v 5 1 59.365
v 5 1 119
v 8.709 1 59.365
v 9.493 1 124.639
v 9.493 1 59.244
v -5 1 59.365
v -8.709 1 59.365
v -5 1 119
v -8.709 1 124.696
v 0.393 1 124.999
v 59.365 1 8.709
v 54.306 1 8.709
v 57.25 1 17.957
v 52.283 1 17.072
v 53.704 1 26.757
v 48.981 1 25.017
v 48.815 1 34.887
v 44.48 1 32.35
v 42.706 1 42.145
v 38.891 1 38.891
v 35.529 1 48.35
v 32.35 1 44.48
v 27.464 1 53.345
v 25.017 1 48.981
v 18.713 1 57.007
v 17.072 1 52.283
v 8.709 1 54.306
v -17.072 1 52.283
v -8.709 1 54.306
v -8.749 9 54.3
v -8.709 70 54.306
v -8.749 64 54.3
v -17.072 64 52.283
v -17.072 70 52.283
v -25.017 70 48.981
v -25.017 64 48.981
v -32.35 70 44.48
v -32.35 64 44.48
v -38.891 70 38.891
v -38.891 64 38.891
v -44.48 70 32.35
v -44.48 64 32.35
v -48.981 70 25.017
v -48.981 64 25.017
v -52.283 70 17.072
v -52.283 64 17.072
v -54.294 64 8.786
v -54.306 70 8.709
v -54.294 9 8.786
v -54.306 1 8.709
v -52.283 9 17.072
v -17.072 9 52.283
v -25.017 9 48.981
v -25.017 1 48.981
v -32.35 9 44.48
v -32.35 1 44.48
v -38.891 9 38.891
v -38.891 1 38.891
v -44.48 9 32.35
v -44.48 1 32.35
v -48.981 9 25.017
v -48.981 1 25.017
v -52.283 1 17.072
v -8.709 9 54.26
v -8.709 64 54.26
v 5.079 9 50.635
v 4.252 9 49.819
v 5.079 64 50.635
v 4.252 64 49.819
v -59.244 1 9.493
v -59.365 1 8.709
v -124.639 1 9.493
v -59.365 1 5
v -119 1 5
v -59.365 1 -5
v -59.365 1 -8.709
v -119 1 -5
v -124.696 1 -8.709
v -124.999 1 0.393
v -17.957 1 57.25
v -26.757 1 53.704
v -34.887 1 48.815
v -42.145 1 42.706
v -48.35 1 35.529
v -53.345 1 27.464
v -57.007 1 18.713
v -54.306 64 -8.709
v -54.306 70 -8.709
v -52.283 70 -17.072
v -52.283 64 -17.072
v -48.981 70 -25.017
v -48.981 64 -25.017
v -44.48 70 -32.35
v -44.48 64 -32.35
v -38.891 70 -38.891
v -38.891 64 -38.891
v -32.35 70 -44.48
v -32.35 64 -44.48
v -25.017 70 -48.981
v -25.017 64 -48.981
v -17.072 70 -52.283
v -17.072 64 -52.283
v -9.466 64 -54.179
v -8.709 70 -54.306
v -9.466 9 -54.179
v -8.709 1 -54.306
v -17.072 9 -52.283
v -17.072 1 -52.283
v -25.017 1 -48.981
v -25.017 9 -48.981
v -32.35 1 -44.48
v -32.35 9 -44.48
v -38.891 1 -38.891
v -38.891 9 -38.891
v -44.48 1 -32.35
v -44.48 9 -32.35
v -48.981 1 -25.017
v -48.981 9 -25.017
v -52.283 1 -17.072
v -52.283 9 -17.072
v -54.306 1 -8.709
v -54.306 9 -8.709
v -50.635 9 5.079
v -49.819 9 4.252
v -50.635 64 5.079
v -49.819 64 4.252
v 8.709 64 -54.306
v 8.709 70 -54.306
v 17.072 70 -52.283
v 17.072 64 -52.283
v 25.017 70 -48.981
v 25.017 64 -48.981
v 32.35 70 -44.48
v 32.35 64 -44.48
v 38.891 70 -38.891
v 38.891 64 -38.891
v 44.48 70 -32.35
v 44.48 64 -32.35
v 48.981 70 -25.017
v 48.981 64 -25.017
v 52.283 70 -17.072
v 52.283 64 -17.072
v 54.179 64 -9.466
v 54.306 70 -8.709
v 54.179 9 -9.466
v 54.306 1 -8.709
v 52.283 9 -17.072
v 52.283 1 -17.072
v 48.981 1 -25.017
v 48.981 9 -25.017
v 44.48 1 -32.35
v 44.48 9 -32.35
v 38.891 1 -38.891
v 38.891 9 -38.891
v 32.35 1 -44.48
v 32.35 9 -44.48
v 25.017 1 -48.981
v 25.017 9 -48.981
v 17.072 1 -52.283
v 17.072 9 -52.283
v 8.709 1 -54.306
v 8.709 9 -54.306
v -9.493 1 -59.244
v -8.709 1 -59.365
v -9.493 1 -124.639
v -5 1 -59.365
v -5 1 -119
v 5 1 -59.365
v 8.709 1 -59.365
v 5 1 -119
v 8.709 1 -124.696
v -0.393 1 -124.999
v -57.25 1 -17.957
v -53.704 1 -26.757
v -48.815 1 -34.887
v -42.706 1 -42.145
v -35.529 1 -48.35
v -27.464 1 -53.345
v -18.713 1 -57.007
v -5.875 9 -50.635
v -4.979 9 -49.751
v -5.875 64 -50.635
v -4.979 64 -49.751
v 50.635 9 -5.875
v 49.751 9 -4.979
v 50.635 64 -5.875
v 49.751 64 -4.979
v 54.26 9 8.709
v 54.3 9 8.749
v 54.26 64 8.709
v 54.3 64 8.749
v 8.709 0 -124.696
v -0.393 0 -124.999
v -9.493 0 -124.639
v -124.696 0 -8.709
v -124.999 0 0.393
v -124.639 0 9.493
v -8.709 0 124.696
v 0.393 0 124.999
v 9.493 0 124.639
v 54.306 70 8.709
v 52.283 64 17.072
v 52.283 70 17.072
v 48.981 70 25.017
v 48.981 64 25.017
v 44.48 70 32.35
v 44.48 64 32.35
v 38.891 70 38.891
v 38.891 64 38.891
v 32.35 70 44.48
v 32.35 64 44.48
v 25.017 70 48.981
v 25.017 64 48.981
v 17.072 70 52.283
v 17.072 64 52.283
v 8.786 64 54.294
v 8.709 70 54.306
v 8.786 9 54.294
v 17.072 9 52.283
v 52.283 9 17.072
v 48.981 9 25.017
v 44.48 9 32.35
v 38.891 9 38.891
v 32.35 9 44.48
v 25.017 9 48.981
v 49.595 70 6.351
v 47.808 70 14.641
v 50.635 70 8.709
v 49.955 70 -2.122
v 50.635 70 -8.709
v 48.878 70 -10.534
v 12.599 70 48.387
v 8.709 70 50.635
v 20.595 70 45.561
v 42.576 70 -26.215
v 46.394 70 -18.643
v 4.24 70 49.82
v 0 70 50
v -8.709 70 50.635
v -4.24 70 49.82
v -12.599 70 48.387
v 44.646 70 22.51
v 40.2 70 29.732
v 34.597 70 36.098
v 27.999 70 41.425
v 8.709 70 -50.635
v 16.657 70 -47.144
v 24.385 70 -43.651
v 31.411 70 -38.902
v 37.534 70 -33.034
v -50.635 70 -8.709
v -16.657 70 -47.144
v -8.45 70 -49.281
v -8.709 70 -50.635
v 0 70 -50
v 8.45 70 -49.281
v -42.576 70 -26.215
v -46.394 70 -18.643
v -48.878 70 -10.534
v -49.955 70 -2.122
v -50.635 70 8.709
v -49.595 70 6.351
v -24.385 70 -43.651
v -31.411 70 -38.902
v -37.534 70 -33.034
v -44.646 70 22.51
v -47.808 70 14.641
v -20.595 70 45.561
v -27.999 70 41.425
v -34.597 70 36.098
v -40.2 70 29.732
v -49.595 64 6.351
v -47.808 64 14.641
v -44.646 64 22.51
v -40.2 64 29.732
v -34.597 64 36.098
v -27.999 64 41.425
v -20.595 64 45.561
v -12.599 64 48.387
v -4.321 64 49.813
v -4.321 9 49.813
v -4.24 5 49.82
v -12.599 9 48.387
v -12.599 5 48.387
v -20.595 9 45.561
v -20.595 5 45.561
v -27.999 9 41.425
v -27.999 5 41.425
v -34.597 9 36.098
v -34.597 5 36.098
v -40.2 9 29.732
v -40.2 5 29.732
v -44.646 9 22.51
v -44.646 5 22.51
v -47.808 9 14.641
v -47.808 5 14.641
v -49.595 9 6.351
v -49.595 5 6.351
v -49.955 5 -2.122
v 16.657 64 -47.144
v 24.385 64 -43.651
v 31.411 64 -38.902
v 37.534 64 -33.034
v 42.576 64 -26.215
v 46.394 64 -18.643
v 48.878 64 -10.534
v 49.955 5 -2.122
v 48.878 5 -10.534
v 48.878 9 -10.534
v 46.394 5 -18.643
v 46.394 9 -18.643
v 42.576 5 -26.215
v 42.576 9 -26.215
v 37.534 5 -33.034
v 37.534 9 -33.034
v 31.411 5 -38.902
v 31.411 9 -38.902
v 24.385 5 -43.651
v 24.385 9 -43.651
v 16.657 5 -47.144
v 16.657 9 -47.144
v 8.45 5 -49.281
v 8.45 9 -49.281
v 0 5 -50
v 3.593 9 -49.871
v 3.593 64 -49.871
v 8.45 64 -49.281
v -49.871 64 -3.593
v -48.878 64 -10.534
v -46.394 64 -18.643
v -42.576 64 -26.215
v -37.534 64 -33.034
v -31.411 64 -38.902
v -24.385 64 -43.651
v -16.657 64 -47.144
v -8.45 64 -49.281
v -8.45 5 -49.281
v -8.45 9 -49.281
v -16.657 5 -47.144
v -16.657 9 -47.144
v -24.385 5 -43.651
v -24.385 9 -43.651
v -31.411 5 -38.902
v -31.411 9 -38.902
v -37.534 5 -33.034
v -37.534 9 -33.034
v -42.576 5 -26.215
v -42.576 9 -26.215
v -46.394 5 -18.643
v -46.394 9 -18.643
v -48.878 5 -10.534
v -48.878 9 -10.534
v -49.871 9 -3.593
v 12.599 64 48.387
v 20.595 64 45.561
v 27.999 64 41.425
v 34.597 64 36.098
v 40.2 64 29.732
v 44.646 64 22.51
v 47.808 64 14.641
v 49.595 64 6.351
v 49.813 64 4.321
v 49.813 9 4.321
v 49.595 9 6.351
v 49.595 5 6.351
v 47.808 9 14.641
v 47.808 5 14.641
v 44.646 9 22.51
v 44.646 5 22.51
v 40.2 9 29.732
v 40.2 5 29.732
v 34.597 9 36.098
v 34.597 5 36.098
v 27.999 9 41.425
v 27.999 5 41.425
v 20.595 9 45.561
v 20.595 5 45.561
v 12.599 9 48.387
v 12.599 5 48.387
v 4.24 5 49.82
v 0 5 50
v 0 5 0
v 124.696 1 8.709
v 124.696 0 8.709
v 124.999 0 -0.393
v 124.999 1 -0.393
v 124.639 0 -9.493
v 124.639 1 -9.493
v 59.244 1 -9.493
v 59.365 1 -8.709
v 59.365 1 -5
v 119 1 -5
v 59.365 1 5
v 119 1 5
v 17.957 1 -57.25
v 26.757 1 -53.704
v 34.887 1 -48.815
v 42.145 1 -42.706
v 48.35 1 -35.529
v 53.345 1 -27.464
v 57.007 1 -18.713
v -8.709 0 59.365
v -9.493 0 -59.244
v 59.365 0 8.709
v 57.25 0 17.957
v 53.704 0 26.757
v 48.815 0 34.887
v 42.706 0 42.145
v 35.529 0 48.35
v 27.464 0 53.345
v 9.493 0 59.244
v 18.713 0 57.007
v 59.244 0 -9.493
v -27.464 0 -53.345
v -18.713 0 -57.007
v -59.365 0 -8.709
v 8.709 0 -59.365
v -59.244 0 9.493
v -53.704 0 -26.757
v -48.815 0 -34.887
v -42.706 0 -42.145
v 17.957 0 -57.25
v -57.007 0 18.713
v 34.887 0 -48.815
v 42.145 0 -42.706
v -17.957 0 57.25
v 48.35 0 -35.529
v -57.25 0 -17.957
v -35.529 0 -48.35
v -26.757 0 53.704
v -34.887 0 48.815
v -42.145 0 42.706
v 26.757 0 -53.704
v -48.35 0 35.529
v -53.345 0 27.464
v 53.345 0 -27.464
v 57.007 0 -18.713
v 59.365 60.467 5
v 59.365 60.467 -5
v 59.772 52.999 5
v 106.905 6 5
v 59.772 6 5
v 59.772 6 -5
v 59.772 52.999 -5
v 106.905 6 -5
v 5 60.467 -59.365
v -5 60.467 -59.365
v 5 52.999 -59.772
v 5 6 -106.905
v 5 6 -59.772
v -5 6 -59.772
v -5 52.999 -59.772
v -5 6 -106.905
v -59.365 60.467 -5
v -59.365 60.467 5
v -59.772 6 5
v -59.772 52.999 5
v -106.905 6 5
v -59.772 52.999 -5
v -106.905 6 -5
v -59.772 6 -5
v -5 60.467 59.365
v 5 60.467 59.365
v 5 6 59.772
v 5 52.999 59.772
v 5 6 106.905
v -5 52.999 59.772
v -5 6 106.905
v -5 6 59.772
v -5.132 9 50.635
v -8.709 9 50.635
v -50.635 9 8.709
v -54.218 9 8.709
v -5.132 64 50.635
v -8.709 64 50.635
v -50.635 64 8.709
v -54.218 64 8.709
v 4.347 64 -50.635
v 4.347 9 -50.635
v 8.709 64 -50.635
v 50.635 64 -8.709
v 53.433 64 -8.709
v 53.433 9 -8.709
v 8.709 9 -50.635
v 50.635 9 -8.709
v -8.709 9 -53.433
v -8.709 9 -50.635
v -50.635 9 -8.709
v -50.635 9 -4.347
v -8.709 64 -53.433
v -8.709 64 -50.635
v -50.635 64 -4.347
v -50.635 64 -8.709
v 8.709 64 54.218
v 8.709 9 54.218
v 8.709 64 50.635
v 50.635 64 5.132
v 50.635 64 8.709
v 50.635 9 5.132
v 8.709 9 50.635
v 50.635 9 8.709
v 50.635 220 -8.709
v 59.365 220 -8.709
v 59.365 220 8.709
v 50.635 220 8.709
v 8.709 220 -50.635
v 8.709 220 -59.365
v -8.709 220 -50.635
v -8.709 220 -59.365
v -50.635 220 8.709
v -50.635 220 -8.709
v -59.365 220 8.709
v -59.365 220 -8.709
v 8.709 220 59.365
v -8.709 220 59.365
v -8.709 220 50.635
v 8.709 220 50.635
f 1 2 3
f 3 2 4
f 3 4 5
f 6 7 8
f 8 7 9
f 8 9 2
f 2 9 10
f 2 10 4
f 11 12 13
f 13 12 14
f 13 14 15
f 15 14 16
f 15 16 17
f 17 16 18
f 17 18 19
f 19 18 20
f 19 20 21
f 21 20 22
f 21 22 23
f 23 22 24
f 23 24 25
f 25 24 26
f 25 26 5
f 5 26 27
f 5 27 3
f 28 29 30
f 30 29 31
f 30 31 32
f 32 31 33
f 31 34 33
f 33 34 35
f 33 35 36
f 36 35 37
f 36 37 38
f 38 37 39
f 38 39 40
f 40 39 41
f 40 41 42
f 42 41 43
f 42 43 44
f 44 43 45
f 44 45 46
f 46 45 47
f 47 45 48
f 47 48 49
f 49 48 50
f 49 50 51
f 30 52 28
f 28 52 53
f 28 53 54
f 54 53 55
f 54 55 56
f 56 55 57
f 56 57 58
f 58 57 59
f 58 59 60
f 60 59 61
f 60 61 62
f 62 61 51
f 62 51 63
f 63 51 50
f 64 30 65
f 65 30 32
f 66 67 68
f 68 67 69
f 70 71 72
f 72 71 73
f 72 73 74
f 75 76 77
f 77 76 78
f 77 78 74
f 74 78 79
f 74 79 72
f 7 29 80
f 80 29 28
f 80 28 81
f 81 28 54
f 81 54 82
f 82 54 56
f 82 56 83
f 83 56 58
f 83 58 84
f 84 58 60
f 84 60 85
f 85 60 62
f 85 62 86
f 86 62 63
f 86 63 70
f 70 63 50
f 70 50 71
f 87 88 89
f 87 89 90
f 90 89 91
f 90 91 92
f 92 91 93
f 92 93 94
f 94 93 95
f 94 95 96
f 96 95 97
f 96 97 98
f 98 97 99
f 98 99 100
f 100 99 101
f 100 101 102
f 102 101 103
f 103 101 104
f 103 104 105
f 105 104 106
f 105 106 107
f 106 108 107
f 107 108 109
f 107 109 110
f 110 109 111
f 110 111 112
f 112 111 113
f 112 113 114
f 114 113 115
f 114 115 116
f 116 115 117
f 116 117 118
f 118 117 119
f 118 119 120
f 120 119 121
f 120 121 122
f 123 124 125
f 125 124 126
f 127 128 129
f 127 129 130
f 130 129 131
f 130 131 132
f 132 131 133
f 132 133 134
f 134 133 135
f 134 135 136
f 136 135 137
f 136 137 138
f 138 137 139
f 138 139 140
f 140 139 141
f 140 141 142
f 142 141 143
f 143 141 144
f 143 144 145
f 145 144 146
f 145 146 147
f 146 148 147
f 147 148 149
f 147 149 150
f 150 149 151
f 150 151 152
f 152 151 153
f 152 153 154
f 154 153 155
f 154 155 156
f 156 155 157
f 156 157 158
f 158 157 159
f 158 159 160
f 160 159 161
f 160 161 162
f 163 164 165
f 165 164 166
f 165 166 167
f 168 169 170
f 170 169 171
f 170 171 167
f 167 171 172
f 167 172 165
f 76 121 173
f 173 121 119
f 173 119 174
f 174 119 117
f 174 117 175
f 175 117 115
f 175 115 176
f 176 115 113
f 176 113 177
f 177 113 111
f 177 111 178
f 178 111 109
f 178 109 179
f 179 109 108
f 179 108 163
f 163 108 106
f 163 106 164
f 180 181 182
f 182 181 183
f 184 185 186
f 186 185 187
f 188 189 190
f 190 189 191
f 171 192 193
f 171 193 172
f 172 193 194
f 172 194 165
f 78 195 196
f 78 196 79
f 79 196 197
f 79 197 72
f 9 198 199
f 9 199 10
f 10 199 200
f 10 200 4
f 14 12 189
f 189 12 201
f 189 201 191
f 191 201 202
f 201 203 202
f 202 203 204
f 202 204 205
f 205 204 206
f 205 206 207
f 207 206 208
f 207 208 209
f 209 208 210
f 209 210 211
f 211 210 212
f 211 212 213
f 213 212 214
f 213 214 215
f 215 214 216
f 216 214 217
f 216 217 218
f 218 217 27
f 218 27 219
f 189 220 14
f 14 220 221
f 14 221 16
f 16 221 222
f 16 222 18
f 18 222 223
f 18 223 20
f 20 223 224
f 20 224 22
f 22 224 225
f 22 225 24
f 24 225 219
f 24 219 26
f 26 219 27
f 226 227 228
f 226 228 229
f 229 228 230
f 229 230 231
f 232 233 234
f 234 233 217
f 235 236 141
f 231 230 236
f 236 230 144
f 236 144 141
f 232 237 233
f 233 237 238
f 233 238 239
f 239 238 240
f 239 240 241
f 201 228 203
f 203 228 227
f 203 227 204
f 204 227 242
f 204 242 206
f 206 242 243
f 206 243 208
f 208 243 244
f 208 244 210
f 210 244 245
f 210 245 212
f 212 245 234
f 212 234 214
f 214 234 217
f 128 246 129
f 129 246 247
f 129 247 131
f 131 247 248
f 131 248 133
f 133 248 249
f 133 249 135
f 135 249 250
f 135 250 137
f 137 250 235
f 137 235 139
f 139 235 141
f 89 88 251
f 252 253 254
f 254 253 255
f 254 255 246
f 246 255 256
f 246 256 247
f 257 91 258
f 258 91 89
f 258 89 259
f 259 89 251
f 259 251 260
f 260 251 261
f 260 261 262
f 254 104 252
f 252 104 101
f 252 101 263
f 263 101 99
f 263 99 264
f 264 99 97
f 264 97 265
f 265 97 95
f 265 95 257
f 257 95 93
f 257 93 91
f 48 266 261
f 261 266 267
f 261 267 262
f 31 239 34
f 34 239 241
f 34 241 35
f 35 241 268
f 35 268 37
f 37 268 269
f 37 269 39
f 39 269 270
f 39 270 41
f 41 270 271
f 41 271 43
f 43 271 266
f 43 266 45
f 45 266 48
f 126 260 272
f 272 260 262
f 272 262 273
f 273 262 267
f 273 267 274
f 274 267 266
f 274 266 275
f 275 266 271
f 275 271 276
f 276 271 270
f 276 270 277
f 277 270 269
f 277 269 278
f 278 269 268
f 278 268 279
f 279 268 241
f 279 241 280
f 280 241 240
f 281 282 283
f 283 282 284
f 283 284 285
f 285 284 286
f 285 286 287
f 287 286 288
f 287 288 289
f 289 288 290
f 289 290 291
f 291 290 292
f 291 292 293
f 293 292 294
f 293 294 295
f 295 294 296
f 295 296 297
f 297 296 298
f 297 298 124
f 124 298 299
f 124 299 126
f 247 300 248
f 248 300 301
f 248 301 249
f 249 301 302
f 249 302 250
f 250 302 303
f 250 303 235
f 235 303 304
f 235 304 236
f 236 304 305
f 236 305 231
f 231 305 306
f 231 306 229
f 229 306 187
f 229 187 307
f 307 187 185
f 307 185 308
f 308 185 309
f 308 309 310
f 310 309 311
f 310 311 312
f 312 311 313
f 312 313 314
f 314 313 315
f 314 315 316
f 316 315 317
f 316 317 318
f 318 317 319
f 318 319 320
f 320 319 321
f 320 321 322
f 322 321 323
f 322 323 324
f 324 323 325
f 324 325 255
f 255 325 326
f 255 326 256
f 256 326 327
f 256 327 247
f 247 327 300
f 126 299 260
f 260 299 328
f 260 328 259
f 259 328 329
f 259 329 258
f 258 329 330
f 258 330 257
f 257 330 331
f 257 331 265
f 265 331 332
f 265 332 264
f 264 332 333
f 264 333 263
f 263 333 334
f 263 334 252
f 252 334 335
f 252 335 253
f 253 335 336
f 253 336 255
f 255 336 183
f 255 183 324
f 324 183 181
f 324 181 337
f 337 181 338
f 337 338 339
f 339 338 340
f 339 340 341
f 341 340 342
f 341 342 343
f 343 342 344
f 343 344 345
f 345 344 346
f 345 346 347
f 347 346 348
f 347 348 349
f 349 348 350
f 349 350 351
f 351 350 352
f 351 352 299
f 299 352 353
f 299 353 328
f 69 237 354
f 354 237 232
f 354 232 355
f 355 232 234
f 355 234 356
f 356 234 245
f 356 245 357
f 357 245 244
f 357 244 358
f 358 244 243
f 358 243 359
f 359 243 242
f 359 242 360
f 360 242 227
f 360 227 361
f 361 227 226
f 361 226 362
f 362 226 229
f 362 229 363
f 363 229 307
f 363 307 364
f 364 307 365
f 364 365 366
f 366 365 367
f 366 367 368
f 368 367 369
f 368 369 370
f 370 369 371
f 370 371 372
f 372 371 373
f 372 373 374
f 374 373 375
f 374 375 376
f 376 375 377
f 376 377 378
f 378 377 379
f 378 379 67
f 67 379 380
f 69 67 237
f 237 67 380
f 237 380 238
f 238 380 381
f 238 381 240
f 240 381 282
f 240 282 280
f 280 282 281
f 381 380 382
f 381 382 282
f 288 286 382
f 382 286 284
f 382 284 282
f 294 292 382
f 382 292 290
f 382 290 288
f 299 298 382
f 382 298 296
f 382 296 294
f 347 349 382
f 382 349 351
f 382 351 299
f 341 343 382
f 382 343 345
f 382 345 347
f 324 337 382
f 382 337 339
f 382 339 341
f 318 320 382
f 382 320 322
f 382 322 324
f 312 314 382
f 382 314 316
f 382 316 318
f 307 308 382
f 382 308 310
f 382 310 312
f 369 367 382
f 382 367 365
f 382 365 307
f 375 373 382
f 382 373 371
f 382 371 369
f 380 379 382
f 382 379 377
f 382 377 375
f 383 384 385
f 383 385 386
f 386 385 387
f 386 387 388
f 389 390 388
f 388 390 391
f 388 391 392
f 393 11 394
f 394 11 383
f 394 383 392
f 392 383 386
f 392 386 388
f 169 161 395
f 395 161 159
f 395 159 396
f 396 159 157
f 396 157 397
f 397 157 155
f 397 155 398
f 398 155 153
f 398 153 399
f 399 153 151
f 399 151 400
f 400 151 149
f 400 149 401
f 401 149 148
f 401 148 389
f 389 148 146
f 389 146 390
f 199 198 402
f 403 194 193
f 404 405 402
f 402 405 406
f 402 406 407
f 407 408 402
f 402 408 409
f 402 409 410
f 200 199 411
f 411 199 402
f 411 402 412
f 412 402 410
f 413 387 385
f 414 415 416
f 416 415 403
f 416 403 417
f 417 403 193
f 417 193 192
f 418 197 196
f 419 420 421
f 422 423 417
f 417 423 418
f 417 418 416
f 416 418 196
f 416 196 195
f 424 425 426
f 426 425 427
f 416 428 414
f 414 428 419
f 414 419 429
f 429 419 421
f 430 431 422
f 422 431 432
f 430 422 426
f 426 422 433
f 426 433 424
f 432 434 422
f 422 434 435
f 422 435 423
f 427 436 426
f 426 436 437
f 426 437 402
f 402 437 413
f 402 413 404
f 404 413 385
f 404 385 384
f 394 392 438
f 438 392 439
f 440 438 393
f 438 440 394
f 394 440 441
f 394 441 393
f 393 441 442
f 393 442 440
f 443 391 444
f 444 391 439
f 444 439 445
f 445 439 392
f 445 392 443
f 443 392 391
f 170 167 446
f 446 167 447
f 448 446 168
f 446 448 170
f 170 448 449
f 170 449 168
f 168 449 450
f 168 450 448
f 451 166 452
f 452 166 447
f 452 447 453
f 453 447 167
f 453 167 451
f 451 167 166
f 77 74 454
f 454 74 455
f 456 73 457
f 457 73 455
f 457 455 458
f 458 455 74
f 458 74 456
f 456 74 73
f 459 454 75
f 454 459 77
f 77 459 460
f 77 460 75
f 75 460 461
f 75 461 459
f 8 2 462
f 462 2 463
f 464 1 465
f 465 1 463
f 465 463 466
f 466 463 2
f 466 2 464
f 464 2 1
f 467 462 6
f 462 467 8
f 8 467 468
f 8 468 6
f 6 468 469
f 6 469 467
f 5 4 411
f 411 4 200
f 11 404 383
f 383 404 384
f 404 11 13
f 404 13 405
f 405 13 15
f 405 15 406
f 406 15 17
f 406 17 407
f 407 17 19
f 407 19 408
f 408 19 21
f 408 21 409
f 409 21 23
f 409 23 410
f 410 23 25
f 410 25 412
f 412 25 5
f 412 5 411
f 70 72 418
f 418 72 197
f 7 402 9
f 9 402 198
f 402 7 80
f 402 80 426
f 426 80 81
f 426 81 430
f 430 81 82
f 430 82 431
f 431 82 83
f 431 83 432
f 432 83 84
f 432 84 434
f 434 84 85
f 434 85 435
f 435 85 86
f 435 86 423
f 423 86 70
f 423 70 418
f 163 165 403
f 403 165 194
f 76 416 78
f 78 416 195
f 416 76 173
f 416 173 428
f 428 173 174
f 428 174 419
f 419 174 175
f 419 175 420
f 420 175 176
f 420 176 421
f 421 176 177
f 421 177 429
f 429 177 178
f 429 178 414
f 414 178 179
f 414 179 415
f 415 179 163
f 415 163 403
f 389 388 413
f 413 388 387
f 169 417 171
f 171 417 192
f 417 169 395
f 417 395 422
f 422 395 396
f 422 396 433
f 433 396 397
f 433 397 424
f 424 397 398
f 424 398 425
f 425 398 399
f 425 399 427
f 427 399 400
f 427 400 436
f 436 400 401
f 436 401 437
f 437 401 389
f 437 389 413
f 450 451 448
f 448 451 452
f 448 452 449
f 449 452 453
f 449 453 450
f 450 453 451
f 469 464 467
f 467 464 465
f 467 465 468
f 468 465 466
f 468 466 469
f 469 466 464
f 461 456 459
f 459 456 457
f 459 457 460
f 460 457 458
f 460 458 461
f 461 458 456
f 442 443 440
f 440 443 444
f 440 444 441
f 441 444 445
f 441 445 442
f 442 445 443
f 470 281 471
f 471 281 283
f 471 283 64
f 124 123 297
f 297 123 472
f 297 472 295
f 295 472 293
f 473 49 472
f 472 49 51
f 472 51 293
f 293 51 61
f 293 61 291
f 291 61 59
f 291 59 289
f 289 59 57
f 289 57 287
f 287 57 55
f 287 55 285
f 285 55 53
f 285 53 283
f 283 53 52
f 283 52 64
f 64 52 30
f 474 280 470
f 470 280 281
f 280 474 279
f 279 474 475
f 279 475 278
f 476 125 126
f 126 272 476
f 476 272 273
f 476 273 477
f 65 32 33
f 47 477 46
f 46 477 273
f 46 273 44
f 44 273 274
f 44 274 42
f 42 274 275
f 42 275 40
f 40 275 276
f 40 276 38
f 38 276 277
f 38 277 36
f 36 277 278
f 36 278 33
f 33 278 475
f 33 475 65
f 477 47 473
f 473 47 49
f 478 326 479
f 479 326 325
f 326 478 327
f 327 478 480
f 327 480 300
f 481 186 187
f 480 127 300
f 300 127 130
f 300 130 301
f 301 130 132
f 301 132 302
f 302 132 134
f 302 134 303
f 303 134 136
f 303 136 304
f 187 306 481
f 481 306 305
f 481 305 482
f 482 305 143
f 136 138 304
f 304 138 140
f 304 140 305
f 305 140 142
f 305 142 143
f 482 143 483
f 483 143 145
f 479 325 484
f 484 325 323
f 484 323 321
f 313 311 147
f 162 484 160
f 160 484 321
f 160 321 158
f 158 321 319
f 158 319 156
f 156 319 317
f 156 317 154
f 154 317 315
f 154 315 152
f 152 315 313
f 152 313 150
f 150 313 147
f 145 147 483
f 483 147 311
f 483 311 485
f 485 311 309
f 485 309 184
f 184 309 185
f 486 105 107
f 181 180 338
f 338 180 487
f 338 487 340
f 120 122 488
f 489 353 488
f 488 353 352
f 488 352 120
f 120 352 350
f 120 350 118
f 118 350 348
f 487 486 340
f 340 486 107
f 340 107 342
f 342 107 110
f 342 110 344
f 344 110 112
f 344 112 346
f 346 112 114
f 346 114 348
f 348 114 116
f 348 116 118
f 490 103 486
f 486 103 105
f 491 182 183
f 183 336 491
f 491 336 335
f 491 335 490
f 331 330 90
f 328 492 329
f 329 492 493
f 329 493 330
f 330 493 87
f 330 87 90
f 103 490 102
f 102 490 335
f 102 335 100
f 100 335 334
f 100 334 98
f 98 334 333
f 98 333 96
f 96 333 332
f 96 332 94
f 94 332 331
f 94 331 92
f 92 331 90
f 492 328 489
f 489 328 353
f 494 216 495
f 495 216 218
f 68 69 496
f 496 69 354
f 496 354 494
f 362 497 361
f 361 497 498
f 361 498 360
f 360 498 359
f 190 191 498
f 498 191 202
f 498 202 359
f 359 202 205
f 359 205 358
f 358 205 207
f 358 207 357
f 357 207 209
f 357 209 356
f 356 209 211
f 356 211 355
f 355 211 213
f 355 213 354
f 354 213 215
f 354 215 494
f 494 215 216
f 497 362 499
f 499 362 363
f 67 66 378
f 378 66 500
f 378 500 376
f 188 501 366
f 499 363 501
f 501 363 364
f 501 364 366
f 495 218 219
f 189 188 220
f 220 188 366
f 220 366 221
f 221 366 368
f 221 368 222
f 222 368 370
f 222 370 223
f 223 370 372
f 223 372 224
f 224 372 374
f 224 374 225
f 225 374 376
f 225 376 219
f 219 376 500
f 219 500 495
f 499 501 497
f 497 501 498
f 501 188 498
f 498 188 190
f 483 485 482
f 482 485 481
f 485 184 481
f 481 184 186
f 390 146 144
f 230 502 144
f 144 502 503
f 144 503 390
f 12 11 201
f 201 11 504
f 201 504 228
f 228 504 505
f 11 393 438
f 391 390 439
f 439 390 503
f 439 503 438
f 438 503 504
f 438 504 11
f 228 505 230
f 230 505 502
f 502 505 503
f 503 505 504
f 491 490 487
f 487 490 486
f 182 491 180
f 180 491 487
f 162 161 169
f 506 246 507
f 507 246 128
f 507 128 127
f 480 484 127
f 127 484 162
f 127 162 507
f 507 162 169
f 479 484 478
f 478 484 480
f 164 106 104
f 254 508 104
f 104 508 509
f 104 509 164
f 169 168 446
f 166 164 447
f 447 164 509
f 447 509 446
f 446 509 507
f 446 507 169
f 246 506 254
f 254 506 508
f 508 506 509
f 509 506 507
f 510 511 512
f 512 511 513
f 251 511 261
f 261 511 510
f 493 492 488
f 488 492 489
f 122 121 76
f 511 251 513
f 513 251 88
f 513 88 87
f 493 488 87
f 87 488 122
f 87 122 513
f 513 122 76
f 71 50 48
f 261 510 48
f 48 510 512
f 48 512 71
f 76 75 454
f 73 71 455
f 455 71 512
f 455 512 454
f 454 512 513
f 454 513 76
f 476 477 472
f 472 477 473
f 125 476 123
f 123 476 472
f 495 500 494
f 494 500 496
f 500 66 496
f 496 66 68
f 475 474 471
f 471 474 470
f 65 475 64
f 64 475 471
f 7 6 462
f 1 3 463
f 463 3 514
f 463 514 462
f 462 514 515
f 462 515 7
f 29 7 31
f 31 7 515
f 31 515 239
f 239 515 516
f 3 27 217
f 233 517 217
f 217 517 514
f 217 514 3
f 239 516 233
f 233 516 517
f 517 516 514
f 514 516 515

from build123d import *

# Parameters (mm, degrees)
SKETCH2_R           = 55
BOSS_EXTRUDE1_DEPTH = 70
SHELL1_T            = -5
SKETCH4_R           = 125
BOSS_EXTRUDE2_DEPTH = 1
RIB7_REACH          = 192.132
SKETCH3_WALL_W      = 472.644862012
SKETCH3_WALL_H      = 10
CIRPATTERN1_COUNT   = 4
CUT_EXTRUDE1_DEPTH  = 1
CIRPATTERN2_COUNT   = 4
CUT_EXTRUDE2_DEPTH  = 194.455421222
CIRPATTERN3_COUNT   = 4
SKETCH10_W          = 64.387061578
SKETCH10_H          = 55
CUT_EXTRUDE3_DEPTH  = 191.131533418
CIRPATTERN4_COUNT   = 2
CIRPATTERN4_ANGLE   = 90
BOSS_EXTRUDE3_START = -70
SKETCH11_W          = 8.729109108
SKETCH11_H          = 17.418342354
BOSS_EXTRUDE3_DEPTH = 220
CIRPATTERN5_COUNT   = 4


with BuildPart() as part:
    # Sketch2 → Boss-Extrude1 (new body)
    with BuildSketch(Plane(origin=(0, 0, 0), x_dir=(1, 0, 0), z_dir=(0, 1, 0))):
        with Locations(Location((0, 0, 0), (0, 0, 270))):
            Circle(SKETCH2_R)
    extrude(amount=BOSS_EXTRUDE1_DEPTH)

    # Shell1
    shell1_openings = [part.faces().sort_by_distance(p)[0] for p in [
        (0, 70, 0),
    ]]
    offset(amount=SHELL1_T, openings=shell1_openings, kind=Kind.INTERSECTION)

    # Sketch4 → Boss-Extrude2 (add)
    with BuildSketch(Plane(origin=(0, 0, 0), x_dir=(1, 0, 0), z_dir=(0, 1, 0))):
        with Locations(Location((0, 0, 0), (0, 0, 270))):
            Circle(SKETCH4_R)
    extrude(amount=BOSS_EXTRUDE2_DEPTH)

    # Sketch3 wall → Rib7 (add, up to next)
    with BuildSketch(Plane(origin=(87, 32.90951621, 0), x_dir=(0.708107200971, -0.706104943994, 0), z_dir=(0.706104943994, 0.708107200971, 0)), mode=Mode.PRIVATE) as rib7_sk1:
        Rectangle(SKETCH3_WALL_W, SKETCH3_WALL_H)
    rib7_tool1 = extrude(rib7_sk1.sketch, amount=-RIB7_REACH, mode=Mode.PRIVATE) - part.part
    rib7 = rib7_tool1.solids().sort_by_distance((87, 32.90951621, 0))[0]
    add(rib7)

    # CirPattern1: Rib7 ×4 about axis
    cirpattern1_axis = Axis((0, 0, 0), (0, 1, 0))
    for i in range(1, CIRPATTERN1_COUNT):
        add(rib7.rotate(cirpattern1_axis, i * 360 / CIRPATTERN1_COUNT))

    # Sketch5 → Cut-Extrude1 (cut)
    with BuildSketch(Plane(origin=(0, 1, 0), x_dir=(1, 0, 0), z_dir=(0, 1, 0))):
        with BuildLine():
            Line((9.493142678, -59.24424227), (9.493142678, -129.652922227))
            ThreePointArc((9.493142678, -129.652922227), (92.201319164, -91.645604065), (129.707942461, -8.709171177))
            Line((129.707942461, -8.709171177), (59.364554554, -8.709171177))
            ThreePointArc((59.364554554, -8.709171177), (42.705900876, -42.145059383), (9.493142678, -59.24424227))
        make_face()
    cut_extrude1 = extrude(amount=-CUT_EXTRUDE1_DEPTH, mode=Mode.SUBTRACT)

    # CirPattern2: Cut-Extrude1 ×4 about axis
    cirpattern2_axis = Axis((0, 0, 0), (0, 1, 0))
    for i in range(1, CIRPATTERN2_COUNT):
        add(cut_extrude1.rotate(cirpattern2_axis, i * 360 / CIRPATTERN2_COUNT), mode=Mode.SUBTRACT)

    # Sketch7 → Cut-Extrude2 (cut, through all)
    with BuildSketch(Plane(origin=(5, 0, 0), x_dir=(0, 0, -1), z_dir=(1, 0, 0))):
        Polygon((59.772255751, 52.99919304), (106.904721419, 6), (59.772255751, 6), align=None)
    cut_extrude2 = extrude(amount=-CUT_EXTRUDE2_DEPTH, mode=Mode.SUBTRACT)

    # CirPattern3: Cut-Extrude2 ×4 about axis
    cirpattern3_axis = Axis((0, 0, 0), (0, 1, 0))
    for i in range(1, CIRPATTERN3_COUNT):
        add(cut_extrude2.rotate(cirpattern3_axis, i * 360 / CIRPATTERN3_COUNT), mode=Mode.SUBTRACT)

    # Sketch10 → Cut-Extrude3 (cut, symmetric)
    with BuildSketch(Plane(origin=(0, 0, 0), x_dir=(0.7117650145966598, -3.2873850610052313e-15, 0.7024176563813135), z_dir=(-0.7024176563813135, -3.331131634682351e-15, 0.7117650145966598))):
        with Locations((-0.279356343, 36.5)):
            Rectangle(SKETCH10_W, SKETCH10_H)
    cut_extrude3 = extrude(amount=CUT_EXTRUDE3_DEPTH, both=True, mode=Mode.SUBTRACT)

    # CirPattern4: Cut-Extrude3 ×2 about axis
    cirpattern4_axis = Axis((0, 70, 0), (0, 1, 0))
    for i in range(1, CIRPATTERN4_COUNT):
        add(cut_extrude3.rotate(cirpattern4_axis, i * CIRPATTERN4_ANGLE / (CIRPATTERN4_COUNT - 1)), mode=Mode.SUBTRACT)

    # Sketch11 → Boss-Extrude3 (add)
    with BuildSketch(Plane(origin=(0, 70, 0), x_dir=(1, 0, 0), z_dir=(0, 1, 0)).offset(BOSS_EXTRUDE3_START)):
        with Locations((55, 0)):
            Rectangle(SKETCH11_W, SKETCH11_H)
    boss_extrude3 = extrude(amount=BOSS_EXTRUDE3_DEPTH)

    # CirPattern5: Boss-Extrude3 ×4 about axis
    cirpattern5_axis = Axis((0, 0, 0), (0, 1, 0))
    for i in range(1, CIRPATTERN5_COUNT):
        add(boss_extrude3.rotate(cirpattern5_axis, i * 360 / CIRPATTERN5_COUNT))


solid = part.part
